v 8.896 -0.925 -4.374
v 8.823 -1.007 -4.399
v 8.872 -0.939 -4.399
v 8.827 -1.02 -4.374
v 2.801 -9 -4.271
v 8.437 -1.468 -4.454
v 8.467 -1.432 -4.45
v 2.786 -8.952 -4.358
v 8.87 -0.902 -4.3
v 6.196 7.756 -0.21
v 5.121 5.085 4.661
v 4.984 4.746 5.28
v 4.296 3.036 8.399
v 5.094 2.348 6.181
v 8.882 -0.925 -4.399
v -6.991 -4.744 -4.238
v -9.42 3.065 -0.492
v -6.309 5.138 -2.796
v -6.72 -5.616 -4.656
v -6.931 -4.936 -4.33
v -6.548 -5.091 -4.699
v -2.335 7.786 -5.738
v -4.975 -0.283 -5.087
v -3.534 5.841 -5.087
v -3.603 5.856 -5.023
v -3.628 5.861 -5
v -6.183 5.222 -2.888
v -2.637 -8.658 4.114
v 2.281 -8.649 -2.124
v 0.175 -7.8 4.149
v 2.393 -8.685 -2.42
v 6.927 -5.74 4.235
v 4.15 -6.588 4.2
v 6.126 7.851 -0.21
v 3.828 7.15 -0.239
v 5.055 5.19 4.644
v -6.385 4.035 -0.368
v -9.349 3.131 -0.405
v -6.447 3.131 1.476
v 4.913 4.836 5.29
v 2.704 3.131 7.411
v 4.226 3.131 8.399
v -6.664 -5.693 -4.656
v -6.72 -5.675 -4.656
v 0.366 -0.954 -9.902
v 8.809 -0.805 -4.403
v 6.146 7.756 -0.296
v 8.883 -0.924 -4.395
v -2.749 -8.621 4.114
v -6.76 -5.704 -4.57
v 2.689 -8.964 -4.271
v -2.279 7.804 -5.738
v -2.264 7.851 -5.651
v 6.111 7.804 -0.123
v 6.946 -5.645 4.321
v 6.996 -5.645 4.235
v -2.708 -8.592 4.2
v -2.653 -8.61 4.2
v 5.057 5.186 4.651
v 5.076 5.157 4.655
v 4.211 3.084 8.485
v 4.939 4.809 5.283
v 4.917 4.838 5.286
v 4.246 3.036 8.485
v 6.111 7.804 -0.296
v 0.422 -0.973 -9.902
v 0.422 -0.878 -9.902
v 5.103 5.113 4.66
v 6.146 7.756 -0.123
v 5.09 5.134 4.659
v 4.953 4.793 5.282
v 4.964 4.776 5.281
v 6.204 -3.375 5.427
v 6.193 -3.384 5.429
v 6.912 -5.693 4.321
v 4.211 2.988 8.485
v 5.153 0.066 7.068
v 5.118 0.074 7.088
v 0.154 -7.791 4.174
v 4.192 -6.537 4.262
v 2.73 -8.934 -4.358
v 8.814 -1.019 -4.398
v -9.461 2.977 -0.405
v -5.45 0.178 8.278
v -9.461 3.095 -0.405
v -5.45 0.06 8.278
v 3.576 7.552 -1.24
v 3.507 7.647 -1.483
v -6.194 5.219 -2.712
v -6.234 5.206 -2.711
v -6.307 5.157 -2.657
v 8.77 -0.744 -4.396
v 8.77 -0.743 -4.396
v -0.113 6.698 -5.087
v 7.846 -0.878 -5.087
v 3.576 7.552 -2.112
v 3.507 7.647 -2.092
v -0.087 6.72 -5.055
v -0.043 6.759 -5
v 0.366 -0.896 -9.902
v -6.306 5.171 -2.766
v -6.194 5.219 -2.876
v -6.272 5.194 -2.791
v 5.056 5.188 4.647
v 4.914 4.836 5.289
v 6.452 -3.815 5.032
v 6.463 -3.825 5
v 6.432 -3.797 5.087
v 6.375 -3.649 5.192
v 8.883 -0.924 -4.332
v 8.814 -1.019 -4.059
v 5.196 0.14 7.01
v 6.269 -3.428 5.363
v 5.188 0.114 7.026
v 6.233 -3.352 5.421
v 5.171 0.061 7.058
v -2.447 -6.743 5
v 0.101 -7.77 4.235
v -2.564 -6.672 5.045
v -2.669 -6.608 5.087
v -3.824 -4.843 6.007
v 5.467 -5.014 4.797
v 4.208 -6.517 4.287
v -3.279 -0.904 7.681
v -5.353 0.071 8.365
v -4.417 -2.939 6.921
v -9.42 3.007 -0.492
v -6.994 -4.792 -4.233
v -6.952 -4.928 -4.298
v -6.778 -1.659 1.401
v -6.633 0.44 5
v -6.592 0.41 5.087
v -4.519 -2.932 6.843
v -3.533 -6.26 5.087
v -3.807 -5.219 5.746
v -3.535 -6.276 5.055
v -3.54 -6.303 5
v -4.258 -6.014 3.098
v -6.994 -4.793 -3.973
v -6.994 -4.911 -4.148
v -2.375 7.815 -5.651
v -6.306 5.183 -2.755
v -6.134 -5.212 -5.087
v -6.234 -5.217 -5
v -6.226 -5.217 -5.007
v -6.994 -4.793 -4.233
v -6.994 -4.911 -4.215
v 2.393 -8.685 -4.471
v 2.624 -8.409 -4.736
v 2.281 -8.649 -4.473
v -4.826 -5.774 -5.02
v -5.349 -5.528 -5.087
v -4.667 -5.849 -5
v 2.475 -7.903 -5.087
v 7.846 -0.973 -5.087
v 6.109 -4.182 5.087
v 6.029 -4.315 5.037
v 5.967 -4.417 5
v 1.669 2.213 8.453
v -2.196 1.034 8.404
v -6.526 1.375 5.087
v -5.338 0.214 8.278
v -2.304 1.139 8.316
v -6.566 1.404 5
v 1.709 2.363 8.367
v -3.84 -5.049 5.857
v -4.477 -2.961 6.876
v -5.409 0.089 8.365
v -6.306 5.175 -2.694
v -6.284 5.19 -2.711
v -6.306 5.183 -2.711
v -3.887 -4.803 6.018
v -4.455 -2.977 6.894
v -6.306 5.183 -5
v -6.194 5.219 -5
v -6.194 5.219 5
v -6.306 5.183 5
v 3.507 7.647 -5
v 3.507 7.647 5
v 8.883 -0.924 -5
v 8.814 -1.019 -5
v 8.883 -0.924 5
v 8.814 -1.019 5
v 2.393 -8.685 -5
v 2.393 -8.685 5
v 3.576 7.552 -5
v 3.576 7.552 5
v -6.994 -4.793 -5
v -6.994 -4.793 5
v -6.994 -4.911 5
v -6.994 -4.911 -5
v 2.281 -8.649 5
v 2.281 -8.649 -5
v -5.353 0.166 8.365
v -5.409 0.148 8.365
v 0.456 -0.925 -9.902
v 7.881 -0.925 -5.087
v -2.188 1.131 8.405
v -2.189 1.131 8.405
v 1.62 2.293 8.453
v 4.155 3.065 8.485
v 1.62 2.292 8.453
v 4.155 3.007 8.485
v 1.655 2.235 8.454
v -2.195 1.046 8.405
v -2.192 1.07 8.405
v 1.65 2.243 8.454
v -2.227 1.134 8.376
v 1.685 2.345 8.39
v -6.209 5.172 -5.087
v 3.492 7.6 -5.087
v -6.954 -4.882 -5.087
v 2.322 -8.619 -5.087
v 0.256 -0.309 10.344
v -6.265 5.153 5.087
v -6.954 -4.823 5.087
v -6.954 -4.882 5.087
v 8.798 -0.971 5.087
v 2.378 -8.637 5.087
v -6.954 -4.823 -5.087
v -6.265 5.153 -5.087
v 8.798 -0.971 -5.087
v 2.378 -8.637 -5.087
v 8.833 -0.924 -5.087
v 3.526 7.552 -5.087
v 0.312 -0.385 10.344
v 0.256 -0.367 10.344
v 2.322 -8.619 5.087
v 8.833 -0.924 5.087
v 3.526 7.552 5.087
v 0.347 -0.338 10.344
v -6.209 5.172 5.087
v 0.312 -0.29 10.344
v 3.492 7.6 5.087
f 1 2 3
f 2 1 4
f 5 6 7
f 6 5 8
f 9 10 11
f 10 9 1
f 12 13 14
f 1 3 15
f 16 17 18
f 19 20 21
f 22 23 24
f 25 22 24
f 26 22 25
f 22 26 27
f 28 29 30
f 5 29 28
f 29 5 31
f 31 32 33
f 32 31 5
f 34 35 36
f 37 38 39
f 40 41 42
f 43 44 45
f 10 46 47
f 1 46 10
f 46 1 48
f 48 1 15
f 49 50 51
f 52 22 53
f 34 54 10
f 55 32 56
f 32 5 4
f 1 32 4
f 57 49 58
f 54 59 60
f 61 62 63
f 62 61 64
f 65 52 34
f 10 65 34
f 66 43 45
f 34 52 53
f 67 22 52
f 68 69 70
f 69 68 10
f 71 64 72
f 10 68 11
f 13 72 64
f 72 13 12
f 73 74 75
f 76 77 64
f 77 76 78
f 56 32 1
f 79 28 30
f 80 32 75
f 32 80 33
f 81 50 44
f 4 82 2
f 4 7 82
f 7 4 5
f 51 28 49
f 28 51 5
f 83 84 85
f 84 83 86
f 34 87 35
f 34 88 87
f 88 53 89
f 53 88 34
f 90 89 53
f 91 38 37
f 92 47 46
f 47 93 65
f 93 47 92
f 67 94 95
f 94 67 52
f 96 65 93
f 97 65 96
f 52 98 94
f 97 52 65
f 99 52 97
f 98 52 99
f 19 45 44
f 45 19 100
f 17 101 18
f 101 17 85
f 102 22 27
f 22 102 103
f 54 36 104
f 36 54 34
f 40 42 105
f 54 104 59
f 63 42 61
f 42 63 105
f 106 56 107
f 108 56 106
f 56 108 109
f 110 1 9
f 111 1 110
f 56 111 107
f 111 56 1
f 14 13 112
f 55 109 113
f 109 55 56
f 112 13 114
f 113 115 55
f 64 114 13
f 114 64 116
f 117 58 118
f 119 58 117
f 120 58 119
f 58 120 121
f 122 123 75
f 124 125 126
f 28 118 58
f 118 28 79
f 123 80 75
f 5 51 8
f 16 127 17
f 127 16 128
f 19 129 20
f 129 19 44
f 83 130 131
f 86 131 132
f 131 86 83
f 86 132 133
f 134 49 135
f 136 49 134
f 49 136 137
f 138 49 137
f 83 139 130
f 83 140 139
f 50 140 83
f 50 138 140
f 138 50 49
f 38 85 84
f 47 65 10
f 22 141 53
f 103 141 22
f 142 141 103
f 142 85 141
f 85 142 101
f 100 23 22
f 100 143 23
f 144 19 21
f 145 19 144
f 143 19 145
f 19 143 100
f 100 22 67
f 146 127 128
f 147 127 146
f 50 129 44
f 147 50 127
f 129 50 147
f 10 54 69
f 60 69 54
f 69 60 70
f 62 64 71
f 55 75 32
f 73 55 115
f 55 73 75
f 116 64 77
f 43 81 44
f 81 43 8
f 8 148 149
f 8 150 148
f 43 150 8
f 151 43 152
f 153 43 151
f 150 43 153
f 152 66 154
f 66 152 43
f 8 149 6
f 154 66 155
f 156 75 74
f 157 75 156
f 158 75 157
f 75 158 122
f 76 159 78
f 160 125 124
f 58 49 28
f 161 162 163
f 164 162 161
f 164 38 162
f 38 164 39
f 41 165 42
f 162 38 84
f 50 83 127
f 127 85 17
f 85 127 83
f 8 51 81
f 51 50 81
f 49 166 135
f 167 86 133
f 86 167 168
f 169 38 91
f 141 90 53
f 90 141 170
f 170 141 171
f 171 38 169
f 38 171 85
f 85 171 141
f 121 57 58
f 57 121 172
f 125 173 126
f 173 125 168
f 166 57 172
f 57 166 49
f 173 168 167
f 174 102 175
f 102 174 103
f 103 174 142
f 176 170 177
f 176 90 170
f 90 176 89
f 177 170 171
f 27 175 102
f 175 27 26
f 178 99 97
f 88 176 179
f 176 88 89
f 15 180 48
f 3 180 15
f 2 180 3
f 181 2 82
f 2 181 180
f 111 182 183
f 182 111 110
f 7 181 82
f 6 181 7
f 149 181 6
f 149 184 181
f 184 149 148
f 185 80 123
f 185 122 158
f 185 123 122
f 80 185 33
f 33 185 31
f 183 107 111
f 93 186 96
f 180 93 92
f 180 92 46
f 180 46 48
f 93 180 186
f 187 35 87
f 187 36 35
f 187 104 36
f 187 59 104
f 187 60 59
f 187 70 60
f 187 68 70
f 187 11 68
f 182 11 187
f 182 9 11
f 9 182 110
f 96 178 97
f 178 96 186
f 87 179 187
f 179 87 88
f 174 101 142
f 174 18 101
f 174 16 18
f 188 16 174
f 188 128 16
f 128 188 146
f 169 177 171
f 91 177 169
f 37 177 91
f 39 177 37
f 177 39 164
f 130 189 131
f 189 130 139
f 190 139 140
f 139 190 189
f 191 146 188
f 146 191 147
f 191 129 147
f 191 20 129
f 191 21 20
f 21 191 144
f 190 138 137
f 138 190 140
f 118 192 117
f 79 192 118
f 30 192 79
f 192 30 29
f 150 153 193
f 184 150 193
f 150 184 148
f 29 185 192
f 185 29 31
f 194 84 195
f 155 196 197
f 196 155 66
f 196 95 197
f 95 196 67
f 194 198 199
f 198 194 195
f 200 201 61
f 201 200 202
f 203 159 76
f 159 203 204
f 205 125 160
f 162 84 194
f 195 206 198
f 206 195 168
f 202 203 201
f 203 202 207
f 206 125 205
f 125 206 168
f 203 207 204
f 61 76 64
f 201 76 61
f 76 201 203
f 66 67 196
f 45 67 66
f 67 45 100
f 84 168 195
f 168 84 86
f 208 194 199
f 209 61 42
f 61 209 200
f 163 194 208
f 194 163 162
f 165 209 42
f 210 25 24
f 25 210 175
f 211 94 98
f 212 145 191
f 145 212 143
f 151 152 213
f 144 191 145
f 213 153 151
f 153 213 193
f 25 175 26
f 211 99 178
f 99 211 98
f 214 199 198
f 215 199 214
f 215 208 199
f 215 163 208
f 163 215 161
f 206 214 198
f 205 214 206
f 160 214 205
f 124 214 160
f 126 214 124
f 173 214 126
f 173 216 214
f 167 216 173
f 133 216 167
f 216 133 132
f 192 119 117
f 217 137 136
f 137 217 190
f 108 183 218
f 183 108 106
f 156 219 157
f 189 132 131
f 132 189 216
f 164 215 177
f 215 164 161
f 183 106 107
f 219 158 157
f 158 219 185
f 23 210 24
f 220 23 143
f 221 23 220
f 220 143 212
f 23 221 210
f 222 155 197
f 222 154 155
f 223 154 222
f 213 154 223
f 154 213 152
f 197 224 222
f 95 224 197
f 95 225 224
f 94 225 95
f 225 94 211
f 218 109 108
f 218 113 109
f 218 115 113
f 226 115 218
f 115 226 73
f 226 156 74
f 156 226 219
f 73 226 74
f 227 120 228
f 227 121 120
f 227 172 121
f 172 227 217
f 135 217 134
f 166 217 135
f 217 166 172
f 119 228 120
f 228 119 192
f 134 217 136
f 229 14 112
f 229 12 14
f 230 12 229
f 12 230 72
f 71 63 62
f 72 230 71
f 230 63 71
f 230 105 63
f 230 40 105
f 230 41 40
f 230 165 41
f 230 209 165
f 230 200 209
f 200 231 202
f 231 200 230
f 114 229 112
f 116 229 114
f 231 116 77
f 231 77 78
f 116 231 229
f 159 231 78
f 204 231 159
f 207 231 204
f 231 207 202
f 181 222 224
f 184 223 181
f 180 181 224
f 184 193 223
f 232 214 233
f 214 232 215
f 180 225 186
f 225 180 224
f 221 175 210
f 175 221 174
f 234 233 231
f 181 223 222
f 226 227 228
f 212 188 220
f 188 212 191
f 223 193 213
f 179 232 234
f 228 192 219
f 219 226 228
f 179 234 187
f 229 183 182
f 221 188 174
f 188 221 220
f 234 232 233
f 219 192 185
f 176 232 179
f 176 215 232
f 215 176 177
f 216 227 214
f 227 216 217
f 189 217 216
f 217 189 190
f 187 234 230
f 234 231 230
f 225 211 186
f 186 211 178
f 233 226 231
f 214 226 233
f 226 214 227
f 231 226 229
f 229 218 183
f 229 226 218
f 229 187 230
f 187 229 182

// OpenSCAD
// Auto-generated OpenSCAD file

    inner_points = 10*[[0.23620735966756062, -0.8589852711237683, 0.5000000000000063], [0.23620735966771172, -0.858985271123738, -0.4999999999999937], [0.34761095792346763, 0.7552090254358284, 0.5000000000000718], [0.34761095792361874, 0.7552090254358587, -0.4999999999999281], [-0.6913160481524341, -0.4852202005968615, 0.49999999999987743], [-0.6913160481522832, -0.48522020059683124, -0.5000000000001226], [-0.6224648379612451, 0.5124067391231968, 0.49999999999991795], [-0.6224648379610942, 0.512406739123227, -0.5000000000000819], [0.8782995612526363, -0.09235784879684011, 0.5000000000001265], [0.8782995612527874, -0.09235784879680989, -0.49999999999987355], [0.029667398545917656, -0.03378951119170483, 1.0257311121191337]];

    outer_points = 10*[[0.6896236781921562, -0.5645352314085775, 0.42346895131185747], [0.41955903020283425, 0.3036037251142055, 0.8398820131554279], [-0.6679054017418039, -0.5645352314085775, -0.456956392418973], [-0.9379700497311259, 0.3036037251142055, -0.04054333057540266], [0.879621500888307, -0.092505702154205, -0.43739628255614915], [0.6095568528989852, 0.775633254368578, -0.0209832207125788], [0.04062238877274693, -0.092505702154205, -0.9815290695386115], [-0.22944225921657496, 0.775633254368578, -0.5651160076950412], [-0.26680054613810145, -0.8562655241813926, 0.41138013859295025], [-0.5368651941274234, 0.011873432341390544, 0.8277932004365205], [0.2770137117261496, -0.8904771373480586, -0.42712783302573903]];

    // Convex hull for inner set (I)
    module inner_hull() {
        hull() {
            for (p = inner_points) {
                translate(p) sphere(r=0.1);
            }
        }
    }

    // Convex hull for outer set (O) minus inner hull (O \ I)
    module outer_minus_inner() {
        difference() {
            hull() {
                for (p = outer_points) {
                    translate(p) sphere(r=0.1);
                }
            }
            inner_hull(); // Subtract inner hull
        }
    }

    // Convex hull for outer set (O) minus all translated inner hulls
    module outer_minus_AllTranslationInner() {
        difference() {
            hull() {
                for (p = outer_points) {
                    translate(p) sphere(r=0.1);
                }
            }
            hull() {
                translate([0,0,50]) inner_hull();
                translate([0,0,-50]) inner_hull();
            }; // Subtract translated inner hulls
        }
    }

    // Difference between outer_minus_inner and outer_minus_AllTranslationInner
    module outer_minus_inner_diff() {
        difference() {
            // Outer minus inner
            difference() {
                hull() {
                    for (p = outer_points) {
                        translate(p) sphere(r=0.1);
                    }
                }
                inner_hull();
            }

            // Subtract Outer minus AllTranslationInner
            difference() {
                hull() {
                    for (p = outer_points) {
                        translate(p) sphere(r=0.1);
                    }
                }
                hull() {
                    translate([0,0,50]) inner_hull();
                    translate([0,0,-50]) inner_hull();
                };
            }
        }
    }

    // Rendering all with colors applied
    color([1, 0, 0, 0.5]) inner_hull(); // Transparent red
    color([0, 1, 0, 1]) outer_minus_AllTranslationInner(); // Opaque green
    color([1, 1, 0, 1]) outer_minus_inner_diff(); // Opaque yellow
    
